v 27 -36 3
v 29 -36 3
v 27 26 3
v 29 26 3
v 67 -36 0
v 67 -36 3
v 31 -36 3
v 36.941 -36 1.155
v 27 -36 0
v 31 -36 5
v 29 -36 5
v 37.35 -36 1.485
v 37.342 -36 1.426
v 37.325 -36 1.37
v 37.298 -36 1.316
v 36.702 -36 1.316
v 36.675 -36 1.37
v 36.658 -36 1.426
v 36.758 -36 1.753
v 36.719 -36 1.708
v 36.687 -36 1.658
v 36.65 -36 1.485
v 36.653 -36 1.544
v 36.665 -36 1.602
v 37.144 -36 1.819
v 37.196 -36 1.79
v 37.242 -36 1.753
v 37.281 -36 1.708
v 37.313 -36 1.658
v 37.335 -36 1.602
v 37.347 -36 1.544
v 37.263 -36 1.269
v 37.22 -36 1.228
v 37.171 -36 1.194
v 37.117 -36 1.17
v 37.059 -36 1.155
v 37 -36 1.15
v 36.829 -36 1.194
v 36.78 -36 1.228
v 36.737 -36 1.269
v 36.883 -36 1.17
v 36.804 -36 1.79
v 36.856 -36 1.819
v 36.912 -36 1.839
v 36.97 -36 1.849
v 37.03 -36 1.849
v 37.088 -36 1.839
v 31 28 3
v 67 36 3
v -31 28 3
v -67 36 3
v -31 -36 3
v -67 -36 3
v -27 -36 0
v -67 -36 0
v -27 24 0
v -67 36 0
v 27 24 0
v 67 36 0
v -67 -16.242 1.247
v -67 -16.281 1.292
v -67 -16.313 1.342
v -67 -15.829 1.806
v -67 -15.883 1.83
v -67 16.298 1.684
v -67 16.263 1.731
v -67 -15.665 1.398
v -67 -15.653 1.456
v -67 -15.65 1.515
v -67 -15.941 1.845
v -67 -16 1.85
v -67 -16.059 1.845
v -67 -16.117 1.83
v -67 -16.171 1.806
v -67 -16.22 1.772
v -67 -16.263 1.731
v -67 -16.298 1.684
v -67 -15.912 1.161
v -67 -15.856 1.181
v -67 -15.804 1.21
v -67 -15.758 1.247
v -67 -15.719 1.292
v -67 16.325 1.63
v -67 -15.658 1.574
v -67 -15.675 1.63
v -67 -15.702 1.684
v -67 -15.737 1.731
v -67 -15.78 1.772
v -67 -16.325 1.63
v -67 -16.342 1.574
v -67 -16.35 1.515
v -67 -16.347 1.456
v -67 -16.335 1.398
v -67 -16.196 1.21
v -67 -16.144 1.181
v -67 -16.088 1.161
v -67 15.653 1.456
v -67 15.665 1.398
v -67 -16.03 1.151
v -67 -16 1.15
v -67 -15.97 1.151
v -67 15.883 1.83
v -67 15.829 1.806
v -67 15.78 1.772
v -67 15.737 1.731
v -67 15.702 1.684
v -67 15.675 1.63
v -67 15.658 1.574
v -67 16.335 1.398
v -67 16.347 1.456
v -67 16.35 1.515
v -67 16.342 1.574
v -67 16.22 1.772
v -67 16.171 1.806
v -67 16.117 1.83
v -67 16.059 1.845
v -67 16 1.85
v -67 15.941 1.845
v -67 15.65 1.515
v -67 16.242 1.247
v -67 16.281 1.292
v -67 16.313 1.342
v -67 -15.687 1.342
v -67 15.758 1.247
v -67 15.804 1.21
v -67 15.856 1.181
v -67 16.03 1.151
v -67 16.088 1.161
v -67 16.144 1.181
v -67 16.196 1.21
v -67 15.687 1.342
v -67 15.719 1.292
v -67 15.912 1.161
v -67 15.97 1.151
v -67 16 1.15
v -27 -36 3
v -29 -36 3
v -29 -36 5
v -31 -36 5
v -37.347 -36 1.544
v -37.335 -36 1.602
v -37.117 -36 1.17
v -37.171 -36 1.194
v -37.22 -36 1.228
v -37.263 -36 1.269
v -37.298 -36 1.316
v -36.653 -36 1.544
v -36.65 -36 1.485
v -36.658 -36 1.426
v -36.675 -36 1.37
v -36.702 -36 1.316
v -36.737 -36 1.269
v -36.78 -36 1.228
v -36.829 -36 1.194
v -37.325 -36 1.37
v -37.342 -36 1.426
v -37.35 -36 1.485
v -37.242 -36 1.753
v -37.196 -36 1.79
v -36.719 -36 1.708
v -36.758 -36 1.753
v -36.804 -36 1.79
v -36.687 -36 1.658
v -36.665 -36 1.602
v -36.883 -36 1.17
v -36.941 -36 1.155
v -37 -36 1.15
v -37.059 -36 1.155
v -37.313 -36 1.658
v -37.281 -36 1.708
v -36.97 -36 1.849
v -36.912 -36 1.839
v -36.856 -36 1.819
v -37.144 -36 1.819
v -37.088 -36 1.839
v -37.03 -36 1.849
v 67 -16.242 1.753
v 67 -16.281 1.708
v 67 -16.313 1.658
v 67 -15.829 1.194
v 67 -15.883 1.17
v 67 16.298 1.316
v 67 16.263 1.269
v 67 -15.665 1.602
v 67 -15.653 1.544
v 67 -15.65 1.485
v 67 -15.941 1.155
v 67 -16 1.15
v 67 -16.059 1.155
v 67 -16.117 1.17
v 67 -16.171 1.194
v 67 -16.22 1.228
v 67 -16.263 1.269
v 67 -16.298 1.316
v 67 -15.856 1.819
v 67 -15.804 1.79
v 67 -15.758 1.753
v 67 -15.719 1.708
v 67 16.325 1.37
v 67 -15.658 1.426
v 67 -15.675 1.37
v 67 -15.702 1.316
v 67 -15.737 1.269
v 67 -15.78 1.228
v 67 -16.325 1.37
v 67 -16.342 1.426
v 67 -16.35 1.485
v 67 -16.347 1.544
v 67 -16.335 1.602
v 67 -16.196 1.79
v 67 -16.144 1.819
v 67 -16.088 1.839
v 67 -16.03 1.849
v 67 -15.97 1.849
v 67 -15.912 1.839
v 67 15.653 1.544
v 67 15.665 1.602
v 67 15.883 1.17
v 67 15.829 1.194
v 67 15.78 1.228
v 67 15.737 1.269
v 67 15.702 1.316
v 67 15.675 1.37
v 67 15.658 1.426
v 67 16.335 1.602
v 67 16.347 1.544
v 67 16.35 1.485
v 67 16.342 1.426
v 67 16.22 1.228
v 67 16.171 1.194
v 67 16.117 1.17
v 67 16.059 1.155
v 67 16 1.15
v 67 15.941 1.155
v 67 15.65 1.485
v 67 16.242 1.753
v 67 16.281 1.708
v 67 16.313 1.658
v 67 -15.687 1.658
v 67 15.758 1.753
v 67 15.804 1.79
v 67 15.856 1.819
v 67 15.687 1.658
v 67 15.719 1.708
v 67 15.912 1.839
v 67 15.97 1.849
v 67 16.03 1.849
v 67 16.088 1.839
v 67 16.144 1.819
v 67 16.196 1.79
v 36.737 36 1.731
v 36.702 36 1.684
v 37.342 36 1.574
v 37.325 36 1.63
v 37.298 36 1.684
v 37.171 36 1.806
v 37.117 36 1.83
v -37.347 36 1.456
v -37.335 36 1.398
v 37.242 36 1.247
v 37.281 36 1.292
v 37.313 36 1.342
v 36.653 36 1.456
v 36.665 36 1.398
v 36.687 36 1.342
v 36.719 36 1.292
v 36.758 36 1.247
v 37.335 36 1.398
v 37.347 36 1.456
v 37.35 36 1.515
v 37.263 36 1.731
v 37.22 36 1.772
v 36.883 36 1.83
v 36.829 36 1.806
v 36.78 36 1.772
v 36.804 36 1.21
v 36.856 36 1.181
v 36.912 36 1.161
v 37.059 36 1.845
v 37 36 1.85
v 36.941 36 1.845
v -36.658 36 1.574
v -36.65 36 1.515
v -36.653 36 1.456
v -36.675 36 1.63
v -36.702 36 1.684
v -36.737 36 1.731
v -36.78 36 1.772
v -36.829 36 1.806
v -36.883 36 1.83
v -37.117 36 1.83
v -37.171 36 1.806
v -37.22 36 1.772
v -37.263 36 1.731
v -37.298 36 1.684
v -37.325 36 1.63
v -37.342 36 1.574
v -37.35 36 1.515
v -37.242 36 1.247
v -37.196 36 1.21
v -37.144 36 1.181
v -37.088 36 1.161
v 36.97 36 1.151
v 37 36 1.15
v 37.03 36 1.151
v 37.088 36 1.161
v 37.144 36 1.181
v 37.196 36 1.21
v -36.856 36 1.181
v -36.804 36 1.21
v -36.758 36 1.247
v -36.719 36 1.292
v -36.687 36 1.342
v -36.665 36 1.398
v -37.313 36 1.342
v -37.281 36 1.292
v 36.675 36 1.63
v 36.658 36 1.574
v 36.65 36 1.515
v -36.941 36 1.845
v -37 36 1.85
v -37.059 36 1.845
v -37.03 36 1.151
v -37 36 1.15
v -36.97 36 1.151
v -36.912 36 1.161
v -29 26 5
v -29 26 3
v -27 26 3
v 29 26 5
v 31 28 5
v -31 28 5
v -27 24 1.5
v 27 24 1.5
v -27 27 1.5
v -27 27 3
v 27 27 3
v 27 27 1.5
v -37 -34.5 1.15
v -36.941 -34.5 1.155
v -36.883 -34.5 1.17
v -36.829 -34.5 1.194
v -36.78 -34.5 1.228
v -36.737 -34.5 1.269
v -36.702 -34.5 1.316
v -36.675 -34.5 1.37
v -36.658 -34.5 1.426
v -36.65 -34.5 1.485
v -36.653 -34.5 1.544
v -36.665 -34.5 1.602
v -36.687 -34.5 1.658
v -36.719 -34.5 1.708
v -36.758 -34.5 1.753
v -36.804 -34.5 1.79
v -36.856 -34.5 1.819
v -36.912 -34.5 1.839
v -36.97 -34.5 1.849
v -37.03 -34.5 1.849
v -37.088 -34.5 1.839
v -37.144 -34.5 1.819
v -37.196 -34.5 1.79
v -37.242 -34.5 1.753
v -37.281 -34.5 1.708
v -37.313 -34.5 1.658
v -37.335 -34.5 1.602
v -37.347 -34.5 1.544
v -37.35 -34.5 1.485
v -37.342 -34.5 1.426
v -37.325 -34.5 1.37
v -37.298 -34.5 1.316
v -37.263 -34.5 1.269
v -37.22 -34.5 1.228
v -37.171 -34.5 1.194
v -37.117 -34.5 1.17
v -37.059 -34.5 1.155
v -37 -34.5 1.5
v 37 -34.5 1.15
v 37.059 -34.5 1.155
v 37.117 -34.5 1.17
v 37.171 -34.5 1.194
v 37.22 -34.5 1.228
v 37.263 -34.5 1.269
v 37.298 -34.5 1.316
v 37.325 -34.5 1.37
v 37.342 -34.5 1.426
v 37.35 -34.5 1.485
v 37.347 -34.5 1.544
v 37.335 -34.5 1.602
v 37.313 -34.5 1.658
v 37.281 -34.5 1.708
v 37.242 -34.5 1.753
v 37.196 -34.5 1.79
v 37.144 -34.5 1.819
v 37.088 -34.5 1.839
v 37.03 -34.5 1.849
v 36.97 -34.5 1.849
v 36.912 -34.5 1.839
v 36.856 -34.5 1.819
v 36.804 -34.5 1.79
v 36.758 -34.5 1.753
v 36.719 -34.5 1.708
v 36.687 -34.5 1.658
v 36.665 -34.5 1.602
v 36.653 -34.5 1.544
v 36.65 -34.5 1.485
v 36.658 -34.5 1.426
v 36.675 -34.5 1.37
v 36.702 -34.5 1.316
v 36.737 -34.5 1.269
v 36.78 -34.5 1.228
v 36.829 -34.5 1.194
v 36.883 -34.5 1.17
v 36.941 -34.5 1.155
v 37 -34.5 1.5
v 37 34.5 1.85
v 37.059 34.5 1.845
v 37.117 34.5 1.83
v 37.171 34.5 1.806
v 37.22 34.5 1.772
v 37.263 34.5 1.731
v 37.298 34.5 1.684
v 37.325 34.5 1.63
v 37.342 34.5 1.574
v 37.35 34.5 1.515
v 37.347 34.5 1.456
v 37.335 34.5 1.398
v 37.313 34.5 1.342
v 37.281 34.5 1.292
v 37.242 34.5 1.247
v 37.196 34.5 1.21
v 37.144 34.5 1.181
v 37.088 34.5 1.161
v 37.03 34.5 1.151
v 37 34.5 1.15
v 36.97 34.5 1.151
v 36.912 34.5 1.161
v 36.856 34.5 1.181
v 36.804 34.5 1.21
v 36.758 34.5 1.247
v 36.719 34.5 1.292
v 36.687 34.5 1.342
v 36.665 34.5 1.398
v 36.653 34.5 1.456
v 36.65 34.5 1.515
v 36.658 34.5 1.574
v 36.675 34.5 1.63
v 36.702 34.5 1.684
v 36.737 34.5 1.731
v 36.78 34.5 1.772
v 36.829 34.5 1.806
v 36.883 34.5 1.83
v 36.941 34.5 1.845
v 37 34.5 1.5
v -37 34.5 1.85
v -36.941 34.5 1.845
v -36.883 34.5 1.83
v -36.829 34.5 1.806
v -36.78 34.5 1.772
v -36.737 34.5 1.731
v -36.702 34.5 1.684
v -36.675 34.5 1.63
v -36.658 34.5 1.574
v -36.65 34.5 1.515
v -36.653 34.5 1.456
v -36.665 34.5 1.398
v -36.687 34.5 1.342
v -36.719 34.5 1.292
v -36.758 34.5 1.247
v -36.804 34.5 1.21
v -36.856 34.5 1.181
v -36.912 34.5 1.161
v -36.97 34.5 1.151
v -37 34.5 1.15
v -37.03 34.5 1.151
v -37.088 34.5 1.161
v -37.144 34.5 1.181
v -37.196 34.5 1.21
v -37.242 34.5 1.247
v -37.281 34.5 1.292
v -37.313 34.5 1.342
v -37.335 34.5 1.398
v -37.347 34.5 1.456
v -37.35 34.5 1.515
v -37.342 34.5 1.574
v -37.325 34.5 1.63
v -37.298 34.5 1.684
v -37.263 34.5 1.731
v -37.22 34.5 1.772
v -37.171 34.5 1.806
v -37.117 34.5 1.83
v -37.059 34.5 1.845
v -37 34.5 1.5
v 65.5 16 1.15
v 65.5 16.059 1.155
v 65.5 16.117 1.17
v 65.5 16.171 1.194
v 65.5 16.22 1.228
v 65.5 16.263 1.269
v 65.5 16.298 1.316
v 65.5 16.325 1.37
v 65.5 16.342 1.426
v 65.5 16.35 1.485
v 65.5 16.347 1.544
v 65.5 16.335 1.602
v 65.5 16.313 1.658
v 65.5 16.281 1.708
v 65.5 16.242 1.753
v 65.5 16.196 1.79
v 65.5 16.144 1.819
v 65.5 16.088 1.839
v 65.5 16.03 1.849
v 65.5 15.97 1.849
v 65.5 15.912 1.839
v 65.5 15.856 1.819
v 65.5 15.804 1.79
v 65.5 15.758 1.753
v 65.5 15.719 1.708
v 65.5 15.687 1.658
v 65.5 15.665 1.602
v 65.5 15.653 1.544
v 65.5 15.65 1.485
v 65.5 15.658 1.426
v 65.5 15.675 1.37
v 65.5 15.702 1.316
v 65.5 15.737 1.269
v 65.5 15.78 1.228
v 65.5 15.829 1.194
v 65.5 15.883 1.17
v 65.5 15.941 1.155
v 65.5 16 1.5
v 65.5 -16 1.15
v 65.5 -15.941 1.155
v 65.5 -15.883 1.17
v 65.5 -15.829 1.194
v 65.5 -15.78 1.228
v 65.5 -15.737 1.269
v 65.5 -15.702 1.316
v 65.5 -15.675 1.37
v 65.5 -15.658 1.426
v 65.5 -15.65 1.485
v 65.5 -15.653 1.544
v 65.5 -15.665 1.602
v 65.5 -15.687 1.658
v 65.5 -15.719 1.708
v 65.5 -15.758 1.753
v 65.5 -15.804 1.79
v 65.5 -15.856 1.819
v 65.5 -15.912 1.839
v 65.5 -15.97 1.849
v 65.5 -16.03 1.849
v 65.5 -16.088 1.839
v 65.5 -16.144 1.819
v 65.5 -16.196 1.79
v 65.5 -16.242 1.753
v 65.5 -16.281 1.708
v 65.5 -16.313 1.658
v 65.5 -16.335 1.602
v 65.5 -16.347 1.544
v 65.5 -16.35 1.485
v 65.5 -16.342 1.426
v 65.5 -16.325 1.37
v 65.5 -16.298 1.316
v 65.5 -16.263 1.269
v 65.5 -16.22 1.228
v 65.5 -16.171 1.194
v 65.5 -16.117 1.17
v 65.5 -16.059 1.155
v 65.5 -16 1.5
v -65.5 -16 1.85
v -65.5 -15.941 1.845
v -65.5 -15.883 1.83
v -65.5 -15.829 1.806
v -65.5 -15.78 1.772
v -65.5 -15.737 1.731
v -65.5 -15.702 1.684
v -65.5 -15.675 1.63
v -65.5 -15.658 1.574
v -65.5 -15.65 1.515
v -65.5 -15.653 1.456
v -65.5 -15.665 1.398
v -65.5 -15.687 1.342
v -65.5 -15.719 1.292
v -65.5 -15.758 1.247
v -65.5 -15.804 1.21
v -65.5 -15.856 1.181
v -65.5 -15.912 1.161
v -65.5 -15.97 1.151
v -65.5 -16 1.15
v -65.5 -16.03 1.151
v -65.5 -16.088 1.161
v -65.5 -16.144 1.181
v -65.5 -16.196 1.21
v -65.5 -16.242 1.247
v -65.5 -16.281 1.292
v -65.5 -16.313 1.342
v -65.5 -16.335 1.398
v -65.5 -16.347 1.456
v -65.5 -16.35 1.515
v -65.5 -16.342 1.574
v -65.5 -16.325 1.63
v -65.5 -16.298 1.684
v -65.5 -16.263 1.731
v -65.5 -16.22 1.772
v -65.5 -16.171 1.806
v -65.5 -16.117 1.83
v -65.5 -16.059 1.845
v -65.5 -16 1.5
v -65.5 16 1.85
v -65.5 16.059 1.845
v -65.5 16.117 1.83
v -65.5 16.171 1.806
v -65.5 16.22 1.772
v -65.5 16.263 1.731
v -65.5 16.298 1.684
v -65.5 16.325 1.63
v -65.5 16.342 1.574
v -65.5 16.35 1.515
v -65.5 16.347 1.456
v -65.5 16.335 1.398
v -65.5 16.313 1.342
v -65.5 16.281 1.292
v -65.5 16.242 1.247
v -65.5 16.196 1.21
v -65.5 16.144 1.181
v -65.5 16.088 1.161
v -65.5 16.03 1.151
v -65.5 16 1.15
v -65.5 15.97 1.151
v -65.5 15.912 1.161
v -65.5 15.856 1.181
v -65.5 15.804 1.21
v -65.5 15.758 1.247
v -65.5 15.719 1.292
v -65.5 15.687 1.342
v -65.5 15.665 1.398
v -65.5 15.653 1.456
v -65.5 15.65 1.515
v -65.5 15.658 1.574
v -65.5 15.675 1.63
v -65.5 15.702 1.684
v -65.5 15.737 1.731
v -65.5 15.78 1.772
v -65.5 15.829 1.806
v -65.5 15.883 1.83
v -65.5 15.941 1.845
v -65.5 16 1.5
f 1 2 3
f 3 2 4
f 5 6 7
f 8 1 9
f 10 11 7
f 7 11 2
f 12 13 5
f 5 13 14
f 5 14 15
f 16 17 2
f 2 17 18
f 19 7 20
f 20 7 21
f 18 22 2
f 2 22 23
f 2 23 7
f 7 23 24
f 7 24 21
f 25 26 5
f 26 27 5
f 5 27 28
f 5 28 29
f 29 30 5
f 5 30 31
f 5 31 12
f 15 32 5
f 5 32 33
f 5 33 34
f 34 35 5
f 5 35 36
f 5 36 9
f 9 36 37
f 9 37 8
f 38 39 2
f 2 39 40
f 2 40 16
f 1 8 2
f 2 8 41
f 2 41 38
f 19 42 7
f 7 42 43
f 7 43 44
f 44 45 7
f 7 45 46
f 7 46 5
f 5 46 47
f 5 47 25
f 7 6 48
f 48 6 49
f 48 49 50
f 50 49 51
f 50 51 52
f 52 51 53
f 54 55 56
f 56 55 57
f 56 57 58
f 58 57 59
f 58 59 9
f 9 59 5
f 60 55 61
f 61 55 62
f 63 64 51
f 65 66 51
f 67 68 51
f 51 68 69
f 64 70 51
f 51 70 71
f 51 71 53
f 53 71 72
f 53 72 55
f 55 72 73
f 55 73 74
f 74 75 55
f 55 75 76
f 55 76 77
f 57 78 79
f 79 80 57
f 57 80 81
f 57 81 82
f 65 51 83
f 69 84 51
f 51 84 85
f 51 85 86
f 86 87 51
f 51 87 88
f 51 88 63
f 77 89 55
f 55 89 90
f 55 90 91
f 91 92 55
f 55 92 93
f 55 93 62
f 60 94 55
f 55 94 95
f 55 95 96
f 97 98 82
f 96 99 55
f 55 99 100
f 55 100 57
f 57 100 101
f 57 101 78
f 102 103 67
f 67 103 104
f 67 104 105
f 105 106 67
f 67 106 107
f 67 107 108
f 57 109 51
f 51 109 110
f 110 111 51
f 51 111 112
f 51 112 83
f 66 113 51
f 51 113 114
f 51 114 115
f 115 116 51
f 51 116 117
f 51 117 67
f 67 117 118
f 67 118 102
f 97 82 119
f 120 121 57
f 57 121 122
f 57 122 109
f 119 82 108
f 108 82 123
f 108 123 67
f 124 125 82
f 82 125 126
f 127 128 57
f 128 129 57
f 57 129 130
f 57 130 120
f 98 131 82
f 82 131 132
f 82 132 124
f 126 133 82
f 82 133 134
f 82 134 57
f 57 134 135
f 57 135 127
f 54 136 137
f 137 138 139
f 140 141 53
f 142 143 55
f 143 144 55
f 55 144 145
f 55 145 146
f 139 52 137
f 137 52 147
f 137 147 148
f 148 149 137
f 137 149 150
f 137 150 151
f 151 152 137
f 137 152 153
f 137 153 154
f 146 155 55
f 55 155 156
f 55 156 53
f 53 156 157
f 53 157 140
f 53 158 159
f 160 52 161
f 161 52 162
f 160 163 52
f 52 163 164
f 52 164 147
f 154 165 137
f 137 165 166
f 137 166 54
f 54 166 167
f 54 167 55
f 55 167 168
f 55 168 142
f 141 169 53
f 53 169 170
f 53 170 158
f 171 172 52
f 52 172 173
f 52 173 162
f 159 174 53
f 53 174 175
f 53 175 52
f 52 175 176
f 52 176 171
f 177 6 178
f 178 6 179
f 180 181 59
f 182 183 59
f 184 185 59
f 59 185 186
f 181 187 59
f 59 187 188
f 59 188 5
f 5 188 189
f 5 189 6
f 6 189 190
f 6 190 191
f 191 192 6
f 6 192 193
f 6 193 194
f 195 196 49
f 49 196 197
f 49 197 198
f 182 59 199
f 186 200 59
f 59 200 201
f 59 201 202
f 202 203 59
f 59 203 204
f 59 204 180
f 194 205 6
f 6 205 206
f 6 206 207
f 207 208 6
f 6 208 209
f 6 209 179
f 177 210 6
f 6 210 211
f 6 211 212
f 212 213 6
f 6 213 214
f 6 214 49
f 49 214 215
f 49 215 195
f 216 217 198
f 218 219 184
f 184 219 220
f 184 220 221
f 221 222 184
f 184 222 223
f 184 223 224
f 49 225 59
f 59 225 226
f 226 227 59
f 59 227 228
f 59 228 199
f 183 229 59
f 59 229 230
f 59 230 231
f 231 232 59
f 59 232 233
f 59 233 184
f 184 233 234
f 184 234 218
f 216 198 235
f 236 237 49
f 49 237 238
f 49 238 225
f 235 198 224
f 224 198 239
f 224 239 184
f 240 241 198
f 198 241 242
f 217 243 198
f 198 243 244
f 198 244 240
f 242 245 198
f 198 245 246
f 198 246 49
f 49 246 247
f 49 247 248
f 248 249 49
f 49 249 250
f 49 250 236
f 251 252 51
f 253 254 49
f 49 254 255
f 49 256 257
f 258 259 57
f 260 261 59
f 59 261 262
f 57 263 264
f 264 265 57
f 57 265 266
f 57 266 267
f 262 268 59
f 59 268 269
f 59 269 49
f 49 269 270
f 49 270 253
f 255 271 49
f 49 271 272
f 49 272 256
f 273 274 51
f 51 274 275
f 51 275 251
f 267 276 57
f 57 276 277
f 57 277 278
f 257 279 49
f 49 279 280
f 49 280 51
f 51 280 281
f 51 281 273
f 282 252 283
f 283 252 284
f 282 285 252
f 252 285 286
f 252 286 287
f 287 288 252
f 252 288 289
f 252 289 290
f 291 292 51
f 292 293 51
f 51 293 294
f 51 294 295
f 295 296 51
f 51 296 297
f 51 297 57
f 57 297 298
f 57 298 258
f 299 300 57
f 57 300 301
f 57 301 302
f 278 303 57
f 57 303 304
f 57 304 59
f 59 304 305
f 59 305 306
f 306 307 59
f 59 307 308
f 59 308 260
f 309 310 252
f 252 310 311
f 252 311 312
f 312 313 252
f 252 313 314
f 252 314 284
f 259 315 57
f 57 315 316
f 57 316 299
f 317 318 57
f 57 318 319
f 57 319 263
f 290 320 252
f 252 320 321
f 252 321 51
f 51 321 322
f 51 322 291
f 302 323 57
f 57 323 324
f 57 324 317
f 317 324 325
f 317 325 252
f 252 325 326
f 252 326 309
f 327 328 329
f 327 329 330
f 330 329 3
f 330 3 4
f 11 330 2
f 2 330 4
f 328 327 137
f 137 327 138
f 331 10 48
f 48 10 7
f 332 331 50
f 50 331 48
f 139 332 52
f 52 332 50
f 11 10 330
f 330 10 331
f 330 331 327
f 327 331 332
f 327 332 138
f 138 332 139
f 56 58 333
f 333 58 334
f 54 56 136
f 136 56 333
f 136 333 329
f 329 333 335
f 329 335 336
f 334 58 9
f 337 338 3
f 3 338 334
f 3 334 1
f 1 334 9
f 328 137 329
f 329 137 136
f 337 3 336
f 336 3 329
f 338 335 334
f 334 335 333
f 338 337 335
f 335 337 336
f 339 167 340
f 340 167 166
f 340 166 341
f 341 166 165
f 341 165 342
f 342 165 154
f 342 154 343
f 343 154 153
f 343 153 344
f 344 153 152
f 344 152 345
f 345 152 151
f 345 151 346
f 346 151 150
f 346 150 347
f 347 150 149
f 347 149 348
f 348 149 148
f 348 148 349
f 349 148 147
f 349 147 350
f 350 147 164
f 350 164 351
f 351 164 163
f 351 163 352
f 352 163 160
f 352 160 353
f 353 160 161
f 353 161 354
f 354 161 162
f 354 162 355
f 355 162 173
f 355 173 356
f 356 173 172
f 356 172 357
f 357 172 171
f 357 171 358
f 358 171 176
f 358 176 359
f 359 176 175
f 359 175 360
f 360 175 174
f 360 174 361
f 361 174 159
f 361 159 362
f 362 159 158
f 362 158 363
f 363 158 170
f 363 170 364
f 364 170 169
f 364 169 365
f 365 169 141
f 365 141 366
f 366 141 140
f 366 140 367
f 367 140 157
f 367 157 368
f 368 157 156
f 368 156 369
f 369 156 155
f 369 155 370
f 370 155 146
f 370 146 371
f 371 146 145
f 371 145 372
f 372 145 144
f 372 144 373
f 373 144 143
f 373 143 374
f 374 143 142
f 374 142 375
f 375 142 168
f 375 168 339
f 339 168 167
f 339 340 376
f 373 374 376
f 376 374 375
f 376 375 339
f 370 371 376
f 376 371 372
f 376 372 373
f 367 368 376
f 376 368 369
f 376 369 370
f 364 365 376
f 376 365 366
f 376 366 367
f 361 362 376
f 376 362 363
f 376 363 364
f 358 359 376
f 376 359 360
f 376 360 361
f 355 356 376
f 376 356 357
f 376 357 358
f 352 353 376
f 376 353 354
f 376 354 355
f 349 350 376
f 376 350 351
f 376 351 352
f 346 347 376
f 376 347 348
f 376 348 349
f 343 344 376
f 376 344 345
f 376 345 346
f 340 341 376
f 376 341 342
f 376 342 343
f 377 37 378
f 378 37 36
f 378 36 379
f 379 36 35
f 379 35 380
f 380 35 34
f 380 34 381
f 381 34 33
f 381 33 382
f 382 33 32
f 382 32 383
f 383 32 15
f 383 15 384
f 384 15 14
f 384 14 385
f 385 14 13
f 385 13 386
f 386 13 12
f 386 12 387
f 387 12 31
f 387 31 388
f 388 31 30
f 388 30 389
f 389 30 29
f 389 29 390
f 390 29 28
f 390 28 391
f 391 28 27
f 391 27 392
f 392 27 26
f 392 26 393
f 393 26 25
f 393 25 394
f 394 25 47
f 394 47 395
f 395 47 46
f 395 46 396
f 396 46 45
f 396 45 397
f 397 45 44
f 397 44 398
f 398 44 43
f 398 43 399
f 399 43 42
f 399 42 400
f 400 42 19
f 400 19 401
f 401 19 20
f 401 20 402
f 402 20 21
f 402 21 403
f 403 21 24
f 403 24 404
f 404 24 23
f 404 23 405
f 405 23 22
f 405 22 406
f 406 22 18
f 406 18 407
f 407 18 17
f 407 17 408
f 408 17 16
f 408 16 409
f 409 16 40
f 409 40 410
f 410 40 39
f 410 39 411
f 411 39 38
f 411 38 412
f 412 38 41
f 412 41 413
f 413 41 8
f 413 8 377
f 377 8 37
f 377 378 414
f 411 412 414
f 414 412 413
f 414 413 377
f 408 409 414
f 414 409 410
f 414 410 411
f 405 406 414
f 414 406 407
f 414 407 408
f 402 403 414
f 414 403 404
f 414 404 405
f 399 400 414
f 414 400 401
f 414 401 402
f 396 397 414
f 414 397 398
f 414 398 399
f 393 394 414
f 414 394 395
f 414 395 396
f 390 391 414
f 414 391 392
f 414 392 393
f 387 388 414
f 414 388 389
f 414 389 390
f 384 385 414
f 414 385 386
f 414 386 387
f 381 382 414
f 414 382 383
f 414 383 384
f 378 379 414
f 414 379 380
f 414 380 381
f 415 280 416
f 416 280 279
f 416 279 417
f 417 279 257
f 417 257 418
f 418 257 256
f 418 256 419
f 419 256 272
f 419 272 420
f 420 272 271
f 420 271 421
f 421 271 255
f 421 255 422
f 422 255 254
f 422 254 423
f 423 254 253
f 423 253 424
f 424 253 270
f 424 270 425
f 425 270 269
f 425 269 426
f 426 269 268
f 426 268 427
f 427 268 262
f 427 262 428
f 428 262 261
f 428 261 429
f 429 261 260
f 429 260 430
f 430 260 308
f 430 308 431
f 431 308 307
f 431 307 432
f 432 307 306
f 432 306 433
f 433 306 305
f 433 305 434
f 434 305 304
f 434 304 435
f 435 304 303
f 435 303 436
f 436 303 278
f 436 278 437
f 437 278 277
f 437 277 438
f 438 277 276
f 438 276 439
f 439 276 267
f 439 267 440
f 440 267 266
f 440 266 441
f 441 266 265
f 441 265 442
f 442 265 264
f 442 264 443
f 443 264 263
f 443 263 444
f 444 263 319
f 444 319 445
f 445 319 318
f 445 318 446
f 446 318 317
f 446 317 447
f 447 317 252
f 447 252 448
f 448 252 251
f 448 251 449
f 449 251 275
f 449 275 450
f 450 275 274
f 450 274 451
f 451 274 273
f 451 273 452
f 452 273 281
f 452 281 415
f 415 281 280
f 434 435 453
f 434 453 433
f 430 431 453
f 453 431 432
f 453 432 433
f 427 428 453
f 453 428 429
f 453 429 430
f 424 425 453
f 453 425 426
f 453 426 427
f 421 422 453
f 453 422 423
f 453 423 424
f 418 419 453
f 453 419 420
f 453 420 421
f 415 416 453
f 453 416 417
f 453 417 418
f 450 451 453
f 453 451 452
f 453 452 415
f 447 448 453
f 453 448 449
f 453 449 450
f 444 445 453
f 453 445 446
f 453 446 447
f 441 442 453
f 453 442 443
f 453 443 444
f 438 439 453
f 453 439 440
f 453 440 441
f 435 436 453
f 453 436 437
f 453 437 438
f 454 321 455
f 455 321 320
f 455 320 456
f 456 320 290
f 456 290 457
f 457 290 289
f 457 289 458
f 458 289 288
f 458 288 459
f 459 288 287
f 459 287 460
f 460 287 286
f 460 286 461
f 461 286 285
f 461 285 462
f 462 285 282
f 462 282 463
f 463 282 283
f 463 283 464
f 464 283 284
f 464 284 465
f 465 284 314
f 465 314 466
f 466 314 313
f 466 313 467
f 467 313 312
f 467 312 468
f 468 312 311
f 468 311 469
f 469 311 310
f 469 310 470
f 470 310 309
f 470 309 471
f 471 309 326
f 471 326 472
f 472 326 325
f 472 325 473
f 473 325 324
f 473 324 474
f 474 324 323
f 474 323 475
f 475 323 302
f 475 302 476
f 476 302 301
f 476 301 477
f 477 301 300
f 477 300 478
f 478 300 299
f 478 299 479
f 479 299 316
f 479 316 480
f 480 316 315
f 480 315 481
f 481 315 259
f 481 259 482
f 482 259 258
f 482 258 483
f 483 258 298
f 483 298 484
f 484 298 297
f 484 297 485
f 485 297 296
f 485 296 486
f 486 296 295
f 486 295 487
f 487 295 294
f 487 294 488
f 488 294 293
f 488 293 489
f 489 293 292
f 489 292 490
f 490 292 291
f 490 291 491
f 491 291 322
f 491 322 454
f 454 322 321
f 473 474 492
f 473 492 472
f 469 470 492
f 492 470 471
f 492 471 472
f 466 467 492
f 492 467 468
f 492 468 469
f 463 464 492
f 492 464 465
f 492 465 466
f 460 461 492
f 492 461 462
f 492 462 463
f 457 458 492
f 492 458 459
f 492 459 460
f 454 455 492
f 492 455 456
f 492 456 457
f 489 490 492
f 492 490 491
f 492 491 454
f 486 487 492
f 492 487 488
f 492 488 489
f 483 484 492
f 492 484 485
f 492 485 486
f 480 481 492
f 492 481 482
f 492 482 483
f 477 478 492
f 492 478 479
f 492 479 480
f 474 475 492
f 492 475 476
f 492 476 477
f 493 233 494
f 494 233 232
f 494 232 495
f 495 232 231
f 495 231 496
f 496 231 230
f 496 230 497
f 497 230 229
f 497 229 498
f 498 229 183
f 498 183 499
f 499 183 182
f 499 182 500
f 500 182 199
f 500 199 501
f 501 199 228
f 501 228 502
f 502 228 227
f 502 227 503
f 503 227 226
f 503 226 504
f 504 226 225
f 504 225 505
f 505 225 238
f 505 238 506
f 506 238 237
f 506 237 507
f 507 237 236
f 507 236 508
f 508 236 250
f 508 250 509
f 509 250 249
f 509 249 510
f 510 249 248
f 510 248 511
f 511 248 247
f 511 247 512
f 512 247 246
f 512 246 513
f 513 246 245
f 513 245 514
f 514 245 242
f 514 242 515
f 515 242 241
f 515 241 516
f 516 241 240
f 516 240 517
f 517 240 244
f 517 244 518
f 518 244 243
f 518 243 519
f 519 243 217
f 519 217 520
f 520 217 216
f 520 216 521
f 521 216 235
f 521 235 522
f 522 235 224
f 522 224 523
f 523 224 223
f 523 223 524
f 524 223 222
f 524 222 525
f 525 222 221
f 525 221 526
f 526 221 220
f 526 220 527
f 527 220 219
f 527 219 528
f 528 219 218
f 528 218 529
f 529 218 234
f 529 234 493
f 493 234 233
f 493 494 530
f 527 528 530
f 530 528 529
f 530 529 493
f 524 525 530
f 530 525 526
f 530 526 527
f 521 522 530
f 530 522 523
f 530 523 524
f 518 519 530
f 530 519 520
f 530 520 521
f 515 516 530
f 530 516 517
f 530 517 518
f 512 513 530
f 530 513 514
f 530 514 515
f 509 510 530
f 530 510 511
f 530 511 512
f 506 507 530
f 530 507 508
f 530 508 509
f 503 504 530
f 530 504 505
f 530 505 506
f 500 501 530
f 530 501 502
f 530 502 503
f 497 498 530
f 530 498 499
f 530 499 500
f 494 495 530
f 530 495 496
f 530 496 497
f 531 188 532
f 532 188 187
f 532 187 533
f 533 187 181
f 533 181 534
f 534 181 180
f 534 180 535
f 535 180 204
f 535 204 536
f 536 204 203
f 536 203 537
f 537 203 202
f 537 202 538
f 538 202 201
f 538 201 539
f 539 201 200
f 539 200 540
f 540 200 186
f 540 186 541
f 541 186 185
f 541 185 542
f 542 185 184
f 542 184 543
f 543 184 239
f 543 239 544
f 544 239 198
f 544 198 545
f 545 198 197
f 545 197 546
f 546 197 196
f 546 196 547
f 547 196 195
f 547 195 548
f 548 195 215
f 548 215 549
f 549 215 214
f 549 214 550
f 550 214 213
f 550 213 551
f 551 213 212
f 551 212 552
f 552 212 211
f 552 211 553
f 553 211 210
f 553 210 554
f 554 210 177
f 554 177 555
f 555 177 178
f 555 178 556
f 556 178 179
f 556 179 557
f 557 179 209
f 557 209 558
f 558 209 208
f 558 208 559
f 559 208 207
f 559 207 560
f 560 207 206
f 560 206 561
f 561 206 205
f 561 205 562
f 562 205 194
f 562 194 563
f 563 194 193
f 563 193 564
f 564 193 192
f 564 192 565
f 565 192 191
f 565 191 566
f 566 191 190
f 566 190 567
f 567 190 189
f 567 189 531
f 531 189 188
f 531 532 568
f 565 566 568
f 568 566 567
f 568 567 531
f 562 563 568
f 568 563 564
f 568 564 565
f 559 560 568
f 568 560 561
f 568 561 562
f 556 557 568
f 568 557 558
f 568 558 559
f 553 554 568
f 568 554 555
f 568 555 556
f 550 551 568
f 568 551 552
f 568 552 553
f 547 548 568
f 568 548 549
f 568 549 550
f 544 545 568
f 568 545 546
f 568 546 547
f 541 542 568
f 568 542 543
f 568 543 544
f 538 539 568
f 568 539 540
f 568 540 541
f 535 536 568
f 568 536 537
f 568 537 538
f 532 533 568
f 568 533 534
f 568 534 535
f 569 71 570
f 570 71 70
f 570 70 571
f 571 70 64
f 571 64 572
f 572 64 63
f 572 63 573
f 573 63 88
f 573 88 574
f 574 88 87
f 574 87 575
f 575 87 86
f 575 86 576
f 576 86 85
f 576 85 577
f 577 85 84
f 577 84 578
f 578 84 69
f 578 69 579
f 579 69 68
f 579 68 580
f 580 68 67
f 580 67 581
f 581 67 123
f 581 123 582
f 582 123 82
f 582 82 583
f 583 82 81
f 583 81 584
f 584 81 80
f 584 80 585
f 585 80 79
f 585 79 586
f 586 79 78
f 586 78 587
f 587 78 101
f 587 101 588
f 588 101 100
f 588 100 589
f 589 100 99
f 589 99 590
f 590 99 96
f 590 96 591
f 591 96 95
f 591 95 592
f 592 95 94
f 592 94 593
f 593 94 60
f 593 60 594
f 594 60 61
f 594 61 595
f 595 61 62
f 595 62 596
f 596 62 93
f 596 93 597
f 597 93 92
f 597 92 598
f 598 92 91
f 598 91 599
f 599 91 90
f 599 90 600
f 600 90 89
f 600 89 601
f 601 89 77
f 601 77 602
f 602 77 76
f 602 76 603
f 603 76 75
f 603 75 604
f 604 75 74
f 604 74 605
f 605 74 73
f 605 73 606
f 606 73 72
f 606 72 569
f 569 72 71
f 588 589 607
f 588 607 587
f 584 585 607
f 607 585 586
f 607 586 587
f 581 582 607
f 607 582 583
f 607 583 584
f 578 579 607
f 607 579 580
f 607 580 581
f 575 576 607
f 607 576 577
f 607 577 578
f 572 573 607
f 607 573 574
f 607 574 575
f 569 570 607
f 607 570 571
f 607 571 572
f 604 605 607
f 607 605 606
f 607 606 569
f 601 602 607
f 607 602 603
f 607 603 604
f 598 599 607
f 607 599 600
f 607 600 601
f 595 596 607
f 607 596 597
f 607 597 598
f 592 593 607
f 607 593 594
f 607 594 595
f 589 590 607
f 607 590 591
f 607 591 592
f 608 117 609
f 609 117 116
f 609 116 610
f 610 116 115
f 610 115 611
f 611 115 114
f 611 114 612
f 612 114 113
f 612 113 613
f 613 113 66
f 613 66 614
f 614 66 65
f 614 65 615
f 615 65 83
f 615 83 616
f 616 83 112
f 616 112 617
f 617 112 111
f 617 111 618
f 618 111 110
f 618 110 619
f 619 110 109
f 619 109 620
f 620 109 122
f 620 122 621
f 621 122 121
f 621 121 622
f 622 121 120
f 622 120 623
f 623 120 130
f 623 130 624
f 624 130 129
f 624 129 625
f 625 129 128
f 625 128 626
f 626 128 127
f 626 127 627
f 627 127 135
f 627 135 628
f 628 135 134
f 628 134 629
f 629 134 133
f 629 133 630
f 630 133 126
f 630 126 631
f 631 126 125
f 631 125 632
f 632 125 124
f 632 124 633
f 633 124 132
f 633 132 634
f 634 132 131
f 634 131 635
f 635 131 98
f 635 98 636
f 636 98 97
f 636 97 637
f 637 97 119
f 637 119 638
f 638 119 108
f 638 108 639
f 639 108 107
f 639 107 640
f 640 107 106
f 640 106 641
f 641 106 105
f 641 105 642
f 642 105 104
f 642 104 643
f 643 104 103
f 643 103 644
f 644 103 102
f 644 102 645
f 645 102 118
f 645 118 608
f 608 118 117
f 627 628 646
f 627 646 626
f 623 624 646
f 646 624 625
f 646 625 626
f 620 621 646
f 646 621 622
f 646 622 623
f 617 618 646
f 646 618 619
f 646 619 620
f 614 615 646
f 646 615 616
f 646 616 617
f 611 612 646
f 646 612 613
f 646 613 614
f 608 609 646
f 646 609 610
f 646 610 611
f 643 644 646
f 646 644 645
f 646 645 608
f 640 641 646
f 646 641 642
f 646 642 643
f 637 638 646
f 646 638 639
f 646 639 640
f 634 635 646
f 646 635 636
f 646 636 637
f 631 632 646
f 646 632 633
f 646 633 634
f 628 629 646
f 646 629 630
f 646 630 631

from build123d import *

# Parameters (mm, degrees)
SKETCH_1_W          = 134
SKETCH_1_H          = 72
EXTRUDE_1_DEPTH     = 3
SKETCH_2_W          = 58
SKETCH_2_H          = 62
CUT_EXTRUDE_1_DEPTH = 77.118328936
SKETCH_2_4_W        = 58
SKETCH_2_4_H        = 2
EXTRUDE_2_DEPTH     = 2
EXTRUDE_3_DEPTH     = 3
SKETCH_3_W          = 54
SKETCH_3_H          = 1.5
CUT_EXTRUDE_2_DEPTH = 3
SKETCH_4_R          = 0.35
CUT_EXTRUDE_3_DEPTH = 1.5
CUT_EXTRUDE_START   = -70.5
SKETCH_4_3_R        = 0.35
CUT_EXTRUDE_4_DEPTH = 1.5
SKETCH_5_R          = 0.35
CUT_EXTRUDE_5_DEPTH = 1.5
CUT_EXTRUDE_START_2 = -132.5
SKETCH_5_3_R        = 0.35
CUT_EXTRUDE_6_DEPTH = 1.5


with BuildPart() as part:
    # 草图1 → 凸台-拉伸1 (new body)
    with BuildSketch(Plane.XY):
        Rectangle(SKETCH_1_W, SKETCH_1_H)
    extrude(amount=EXTRUDE_1_DEPTH)

    # 草图2 → 切除-拉伸1 (cut, through all)
    with BuildSketch(Plane.XY.offset(3)):
        with Locations((0, -5)):
            Rectangle(SKETCH_2_W, SKETCH_2_H)
    extrude(amount=-CUT_EXTRUDE_1_DEPTH, mode=Mode.SUBTRACT)

    # 草图2<4> → 凸台-拉伸2 (add)
    with BuildSketch(Plane.XY.offset(3)):
        Polygon((-29, -36), (-29, 26), (-29, 28), (-31, 28), (-31, -36), align=None)
        with Locations((0, 27)):
            Rectangle(SKETCH_2_4_W, SKETCH_2_4_H)
        Polygon((29, 28), (29, 26), (29, -36), (31, -36), (31, 28), align=None)
    extrude(amount=EXTRUDE_2_DEPTH)

    # 草图2<5> → 凸台-拉伸3 (add)
    with BuildSketch(Plane.XY.offset(3)):
        Polygon((29, 26), (-29, 26), (-29, -36), (-27, -36), (-27, 24), (27, 24), (27, -36), (29, -36), align=None)
    extrude(amount=-EXTRUDE_3_DEPTH)

    # 草图3 → 切除-拉伸2 (cut)
    with BuildSketch(Plane.XZ.offset(-24)):
        with Locations((0, 2.25)):
            Rectangle(SKETCH_3_W, SKETCH_3_H)
    extrude(amount=-CUT_EXTRUDE_2_DEPTH, mode=Mode.SUBTRACT)

    # 草图4 → 切除-拉伸3 (cut)
    with BuildSketch(Plane.XZ.offset(36)):
        with Locations(Location((-37, 1.5, 0), (0, 0, 270))):
            Circle(SKETCH_4_R)
        with Locations(Location((37, 1.5, 0), (0, 0, 270))):
            Circle(SKETCH_4_R)
    extrude(amount=-CUT_EXTRUDE_3_DEPTH, mode=Mode.SUBTRACT)

    # 草图4<3> → 切除-拉伸4 (cut)
    with BuildSketch(Plane.XZ.offset(36).offset(CUT_EXTRUDE_START)):
        with Locations(Location((-37, 1.5, 0), (0, 0, 270))):
            Circle(SKETCH_4_3_R)
        with Locations(Location((37, 1.5, 0), (0, 0, 270))):
            Circle(SKETCH_4_3_R)
    extrude(amount=-CUT_EXTRUDE_4_DEPTH, mode=Mode.SUBTRACT)

    # 草图5 → 切除-拉伸5 (cut)
    with BuildSketch(Plane(origin=(67, 0, 0), x_dir=(0, 0, -1), z_dir=(1, 0, 0))):
        with Locations((-1.5, 16)):
            Circle(SKETCH_5_R)
        with Locations((-1.5, -16)):
            Circle(SKETCH_5_R)
    extrude(amount=-CUT_EXTRUDE_5_DEPTH, mode=Mode.SUBTRACT)

    # 草图5<3> → 切除-拉伸6 (cut)
    with BuildSketch(Plane(origin=(67, 0, 0), x_dir=(0, 0, -1), z_dir=(1, 0, 0)).offset(CUT_EXTRUDE_START_2)):
        with Locations((-1.5, 16)):
            Circle(SKETCH_5_3_R)
        with Locations((-1.5, -16)):
            Circle(SKETCH_5_3_R)
    extrude(amount=-CUT_EXTRUDE_6_DEPTH, mode=Mode.SUBTRACT)


solid = part.part
